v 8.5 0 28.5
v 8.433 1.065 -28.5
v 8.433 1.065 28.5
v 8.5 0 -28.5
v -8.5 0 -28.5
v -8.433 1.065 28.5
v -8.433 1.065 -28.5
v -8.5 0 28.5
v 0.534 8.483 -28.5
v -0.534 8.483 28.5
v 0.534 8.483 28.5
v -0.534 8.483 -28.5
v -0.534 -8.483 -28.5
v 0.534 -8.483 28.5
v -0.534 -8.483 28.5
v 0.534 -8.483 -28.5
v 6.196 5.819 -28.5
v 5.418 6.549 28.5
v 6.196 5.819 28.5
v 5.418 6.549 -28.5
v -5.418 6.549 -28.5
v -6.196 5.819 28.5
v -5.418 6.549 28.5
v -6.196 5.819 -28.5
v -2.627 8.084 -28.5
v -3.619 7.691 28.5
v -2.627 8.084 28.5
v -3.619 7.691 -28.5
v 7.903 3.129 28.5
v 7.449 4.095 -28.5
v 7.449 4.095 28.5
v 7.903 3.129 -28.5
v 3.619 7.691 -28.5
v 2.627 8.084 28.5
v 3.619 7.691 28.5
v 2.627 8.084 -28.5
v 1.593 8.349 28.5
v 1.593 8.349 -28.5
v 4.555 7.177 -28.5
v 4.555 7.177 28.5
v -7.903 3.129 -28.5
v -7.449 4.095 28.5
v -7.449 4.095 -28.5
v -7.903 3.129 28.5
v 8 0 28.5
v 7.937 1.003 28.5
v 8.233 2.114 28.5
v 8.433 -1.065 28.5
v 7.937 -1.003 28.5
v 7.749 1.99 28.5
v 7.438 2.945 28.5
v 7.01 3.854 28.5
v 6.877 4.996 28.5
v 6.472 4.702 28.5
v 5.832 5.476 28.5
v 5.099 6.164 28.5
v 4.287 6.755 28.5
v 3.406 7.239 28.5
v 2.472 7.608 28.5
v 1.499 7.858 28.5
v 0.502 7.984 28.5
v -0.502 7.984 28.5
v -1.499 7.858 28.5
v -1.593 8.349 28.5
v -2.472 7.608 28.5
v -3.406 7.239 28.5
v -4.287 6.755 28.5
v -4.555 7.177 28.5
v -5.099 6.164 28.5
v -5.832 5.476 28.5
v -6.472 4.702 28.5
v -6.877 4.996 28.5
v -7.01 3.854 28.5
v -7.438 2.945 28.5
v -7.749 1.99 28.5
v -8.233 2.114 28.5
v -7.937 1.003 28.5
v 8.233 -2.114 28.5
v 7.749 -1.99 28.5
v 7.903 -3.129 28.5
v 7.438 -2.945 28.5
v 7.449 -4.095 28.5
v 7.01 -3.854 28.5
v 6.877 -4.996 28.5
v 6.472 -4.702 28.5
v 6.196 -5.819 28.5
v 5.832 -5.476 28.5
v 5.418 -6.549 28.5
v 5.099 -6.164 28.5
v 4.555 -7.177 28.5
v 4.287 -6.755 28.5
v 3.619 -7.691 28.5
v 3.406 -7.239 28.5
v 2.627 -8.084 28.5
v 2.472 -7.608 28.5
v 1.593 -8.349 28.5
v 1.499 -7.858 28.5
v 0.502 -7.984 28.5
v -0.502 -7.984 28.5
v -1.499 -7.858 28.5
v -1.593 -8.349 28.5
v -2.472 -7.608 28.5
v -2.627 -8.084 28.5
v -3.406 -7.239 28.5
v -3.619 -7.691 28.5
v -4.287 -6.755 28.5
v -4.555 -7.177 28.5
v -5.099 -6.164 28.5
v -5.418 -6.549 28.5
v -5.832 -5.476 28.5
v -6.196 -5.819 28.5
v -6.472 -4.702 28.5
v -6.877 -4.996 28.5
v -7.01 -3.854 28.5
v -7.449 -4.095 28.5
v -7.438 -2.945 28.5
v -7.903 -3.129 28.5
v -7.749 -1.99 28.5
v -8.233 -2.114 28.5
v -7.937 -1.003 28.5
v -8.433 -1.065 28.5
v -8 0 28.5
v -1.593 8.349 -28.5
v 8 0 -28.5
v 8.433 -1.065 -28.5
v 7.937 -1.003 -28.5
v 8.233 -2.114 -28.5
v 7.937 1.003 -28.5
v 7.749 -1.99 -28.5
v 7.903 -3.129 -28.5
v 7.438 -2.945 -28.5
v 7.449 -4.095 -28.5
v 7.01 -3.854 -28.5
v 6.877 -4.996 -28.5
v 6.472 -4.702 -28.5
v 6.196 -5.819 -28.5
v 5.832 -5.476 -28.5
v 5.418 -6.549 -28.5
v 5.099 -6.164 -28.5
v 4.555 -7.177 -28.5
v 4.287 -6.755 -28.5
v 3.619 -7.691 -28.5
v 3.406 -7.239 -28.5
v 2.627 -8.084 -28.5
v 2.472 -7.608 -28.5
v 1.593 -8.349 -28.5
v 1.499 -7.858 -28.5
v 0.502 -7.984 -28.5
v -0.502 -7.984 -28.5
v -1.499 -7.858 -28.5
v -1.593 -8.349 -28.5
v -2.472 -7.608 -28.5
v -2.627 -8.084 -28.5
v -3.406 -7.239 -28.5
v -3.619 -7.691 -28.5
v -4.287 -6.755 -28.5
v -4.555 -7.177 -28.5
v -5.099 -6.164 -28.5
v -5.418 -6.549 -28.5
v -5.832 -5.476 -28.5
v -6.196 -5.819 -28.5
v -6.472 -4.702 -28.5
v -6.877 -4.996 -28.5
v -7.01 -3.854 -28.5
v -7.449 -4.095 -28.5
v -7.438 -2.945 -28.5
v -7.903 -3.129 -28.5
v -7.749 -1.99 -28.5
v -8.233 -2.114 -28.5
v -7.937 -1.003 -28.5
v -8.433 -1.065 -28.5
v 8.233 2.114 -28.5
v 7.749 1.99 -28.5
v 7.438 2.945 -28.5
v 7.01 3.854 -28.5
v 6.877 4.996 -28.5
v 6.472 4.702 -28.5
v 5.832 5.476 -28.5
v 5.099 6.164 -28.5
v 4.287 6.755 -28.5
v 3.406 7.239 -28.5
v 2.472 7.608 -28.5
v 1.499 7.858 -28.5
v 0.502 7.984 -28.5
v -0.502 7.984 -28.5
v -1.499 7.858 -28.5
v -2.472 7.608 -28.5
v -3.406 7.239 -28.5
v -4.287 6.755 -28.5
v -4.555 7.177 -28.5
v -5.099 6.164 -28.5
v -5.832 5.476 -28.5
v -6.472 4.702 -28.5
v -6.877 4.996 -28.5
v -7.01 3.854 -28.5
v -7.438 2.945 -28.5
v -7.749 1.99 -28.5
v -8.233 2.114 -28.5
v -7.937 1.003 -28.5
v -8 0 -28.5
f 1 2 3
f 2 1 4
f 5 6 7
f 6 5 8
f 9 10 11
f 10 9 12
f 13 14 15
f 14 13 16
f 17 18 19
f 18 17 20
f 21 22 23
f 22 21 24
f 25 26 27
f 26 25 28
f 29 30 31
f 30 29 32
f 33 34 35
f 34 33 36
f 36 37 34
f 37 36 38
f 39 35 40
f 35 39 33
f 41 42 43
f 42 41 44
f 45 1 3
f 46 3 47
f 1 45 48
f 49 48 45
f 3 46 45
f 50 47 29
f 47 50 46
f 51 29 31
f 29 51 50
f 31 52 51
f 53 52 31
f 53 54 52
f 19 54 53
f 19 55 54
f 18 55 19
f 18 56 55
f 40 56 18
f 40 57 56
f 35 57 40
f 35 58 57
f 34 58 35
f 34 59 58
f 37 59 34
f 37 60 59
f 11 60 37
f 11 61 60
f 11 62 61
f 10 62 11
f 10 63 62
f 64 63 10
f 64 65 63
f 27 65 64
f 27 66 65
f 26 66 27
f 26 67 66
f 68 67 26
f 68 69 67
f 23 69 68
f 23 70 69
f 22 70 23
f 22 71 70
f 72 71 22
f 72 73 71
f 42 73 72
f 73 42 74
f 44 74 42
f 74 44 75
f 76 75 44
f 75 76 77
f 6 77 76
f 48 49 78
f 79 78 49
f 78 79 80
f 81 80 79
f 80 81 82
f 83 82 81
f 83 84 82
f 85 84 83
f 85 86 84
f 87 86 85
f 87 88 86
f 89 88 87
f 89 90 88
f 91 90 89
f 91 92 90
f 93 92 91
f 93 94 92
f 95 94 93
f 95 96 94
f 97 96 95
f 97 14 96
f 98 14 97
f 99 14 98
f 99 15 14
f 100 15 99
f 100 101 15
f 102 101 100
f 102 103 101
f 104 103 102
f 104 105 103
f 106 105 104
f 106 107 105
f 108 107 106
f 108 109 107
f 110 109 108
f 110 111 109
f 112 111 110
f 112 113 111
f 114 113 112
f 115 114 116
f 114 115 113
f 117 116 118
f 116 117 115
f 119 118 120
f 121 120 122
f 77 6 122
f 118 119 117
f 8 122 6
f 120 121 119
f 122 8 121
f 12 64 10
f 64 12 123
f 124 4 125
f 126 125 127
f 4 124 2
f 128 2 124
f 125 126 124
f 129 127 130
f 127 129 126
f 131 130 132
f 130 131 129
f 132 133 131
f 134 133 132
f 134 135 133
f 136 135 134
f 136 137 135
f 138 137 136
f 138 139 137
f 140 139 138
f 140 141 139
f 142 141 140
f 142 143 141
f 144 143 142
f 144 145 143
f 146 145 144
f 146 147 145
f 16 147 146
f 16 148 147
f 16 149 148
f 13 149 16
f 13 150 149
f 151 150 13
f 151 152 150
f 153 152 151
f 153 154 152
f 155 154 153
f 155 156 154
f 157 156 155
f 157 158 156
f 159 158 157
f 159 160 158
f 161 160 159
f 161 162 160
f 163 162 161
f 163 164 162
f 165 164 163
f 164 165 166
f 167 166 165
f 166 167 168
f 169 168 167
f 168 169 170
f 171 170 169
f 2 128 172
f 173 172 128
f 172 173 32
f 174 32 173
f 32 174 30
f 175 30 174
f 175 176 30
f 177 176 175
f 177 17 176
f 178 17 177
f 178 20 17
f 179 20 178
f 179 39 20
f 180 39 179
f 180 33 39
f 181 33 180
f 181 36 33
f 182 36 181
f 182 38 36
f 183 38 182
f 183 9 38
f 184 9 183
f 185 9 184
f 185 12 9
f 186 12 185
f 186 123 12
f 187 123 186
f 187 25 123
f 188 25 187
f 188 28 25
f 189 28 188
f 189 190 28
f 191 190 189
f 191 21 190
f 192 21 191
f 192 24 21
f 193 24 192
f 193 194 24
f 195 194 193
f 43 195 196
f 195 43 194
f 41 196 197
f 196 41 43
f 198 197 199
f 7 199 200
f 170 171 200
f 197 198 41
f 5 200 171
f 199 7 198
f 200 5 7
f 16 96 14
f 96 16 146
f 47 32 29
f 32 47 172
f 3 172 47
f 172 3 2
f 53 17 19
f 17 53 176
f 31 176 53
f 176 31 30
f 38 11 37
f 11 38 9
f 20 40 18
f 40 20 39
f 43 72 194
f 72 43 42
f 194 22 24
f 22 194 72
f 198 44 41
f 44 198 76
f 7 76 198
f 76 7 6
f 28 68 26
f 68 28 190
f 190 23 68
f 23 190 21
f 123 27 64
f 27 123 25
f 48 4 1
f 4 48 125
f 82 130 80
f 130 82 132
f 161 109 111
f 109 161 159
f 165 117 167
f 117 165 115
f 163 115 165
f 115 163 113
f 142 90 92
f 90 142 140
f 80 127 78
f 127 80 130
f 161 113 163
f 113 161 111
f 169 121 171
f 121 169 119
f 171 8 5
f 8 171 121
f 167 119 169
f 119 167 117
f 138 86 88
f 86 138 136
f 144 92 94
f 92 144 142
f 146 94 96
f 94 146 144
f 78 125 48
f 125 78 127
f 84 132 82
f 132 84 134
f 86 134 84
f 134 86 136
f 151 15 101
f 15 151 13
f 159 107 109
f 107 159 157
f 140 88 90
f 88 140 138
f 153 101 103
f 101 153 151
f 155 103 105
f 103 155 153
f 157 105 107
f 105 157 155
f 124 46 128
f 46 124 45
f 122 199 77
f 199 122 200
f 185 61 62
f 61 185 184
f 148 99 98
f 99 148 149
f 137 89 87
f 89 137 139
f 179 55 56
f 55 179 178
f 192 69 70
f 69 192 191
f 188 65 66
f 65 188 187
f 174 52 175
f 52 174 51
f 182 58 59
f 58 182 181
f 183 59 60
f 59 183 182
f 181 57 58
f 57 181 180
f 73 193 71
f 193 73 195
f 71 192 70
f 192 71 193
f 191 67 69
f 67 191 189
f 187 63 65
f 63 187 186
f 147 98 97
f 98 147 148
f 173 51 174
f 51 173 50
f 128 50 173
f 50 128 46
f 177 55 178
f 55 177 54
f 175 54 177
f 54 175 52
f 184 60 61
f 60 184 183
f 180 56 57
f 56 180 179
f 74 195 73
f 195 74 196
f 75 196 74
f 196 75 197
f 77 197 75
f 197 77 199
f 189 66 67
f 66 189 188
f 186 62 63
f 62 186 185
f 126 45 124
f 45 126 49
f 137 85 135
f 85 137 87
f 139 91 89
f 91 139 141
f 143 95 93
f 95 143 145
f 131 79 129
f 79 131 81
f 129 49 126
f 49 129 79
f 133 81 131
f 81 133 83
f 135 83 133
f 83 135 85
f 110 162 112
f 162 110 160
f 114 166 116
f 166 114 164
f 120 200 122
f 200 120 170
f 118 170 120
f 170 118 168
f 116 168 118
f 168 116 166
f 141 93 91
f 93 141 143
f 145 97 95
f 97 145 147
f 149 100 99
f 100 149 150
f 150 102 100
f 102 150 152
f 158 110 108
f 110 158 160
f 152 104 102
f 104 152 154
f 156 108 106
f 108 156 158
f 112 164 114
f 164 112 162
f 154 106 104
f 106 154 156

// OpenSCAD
$fn = 50;


difference() {
	union() {
		translate(v = [0, 0, -28.5000000000]) {
			cylinder(h = 57, r = 8.5000000000);
		}
	}
	union() {
		translate(v = [0, 0, -100.0000000000]) {
			cylinder(h = 200, r = 8);
		}
	}
}
